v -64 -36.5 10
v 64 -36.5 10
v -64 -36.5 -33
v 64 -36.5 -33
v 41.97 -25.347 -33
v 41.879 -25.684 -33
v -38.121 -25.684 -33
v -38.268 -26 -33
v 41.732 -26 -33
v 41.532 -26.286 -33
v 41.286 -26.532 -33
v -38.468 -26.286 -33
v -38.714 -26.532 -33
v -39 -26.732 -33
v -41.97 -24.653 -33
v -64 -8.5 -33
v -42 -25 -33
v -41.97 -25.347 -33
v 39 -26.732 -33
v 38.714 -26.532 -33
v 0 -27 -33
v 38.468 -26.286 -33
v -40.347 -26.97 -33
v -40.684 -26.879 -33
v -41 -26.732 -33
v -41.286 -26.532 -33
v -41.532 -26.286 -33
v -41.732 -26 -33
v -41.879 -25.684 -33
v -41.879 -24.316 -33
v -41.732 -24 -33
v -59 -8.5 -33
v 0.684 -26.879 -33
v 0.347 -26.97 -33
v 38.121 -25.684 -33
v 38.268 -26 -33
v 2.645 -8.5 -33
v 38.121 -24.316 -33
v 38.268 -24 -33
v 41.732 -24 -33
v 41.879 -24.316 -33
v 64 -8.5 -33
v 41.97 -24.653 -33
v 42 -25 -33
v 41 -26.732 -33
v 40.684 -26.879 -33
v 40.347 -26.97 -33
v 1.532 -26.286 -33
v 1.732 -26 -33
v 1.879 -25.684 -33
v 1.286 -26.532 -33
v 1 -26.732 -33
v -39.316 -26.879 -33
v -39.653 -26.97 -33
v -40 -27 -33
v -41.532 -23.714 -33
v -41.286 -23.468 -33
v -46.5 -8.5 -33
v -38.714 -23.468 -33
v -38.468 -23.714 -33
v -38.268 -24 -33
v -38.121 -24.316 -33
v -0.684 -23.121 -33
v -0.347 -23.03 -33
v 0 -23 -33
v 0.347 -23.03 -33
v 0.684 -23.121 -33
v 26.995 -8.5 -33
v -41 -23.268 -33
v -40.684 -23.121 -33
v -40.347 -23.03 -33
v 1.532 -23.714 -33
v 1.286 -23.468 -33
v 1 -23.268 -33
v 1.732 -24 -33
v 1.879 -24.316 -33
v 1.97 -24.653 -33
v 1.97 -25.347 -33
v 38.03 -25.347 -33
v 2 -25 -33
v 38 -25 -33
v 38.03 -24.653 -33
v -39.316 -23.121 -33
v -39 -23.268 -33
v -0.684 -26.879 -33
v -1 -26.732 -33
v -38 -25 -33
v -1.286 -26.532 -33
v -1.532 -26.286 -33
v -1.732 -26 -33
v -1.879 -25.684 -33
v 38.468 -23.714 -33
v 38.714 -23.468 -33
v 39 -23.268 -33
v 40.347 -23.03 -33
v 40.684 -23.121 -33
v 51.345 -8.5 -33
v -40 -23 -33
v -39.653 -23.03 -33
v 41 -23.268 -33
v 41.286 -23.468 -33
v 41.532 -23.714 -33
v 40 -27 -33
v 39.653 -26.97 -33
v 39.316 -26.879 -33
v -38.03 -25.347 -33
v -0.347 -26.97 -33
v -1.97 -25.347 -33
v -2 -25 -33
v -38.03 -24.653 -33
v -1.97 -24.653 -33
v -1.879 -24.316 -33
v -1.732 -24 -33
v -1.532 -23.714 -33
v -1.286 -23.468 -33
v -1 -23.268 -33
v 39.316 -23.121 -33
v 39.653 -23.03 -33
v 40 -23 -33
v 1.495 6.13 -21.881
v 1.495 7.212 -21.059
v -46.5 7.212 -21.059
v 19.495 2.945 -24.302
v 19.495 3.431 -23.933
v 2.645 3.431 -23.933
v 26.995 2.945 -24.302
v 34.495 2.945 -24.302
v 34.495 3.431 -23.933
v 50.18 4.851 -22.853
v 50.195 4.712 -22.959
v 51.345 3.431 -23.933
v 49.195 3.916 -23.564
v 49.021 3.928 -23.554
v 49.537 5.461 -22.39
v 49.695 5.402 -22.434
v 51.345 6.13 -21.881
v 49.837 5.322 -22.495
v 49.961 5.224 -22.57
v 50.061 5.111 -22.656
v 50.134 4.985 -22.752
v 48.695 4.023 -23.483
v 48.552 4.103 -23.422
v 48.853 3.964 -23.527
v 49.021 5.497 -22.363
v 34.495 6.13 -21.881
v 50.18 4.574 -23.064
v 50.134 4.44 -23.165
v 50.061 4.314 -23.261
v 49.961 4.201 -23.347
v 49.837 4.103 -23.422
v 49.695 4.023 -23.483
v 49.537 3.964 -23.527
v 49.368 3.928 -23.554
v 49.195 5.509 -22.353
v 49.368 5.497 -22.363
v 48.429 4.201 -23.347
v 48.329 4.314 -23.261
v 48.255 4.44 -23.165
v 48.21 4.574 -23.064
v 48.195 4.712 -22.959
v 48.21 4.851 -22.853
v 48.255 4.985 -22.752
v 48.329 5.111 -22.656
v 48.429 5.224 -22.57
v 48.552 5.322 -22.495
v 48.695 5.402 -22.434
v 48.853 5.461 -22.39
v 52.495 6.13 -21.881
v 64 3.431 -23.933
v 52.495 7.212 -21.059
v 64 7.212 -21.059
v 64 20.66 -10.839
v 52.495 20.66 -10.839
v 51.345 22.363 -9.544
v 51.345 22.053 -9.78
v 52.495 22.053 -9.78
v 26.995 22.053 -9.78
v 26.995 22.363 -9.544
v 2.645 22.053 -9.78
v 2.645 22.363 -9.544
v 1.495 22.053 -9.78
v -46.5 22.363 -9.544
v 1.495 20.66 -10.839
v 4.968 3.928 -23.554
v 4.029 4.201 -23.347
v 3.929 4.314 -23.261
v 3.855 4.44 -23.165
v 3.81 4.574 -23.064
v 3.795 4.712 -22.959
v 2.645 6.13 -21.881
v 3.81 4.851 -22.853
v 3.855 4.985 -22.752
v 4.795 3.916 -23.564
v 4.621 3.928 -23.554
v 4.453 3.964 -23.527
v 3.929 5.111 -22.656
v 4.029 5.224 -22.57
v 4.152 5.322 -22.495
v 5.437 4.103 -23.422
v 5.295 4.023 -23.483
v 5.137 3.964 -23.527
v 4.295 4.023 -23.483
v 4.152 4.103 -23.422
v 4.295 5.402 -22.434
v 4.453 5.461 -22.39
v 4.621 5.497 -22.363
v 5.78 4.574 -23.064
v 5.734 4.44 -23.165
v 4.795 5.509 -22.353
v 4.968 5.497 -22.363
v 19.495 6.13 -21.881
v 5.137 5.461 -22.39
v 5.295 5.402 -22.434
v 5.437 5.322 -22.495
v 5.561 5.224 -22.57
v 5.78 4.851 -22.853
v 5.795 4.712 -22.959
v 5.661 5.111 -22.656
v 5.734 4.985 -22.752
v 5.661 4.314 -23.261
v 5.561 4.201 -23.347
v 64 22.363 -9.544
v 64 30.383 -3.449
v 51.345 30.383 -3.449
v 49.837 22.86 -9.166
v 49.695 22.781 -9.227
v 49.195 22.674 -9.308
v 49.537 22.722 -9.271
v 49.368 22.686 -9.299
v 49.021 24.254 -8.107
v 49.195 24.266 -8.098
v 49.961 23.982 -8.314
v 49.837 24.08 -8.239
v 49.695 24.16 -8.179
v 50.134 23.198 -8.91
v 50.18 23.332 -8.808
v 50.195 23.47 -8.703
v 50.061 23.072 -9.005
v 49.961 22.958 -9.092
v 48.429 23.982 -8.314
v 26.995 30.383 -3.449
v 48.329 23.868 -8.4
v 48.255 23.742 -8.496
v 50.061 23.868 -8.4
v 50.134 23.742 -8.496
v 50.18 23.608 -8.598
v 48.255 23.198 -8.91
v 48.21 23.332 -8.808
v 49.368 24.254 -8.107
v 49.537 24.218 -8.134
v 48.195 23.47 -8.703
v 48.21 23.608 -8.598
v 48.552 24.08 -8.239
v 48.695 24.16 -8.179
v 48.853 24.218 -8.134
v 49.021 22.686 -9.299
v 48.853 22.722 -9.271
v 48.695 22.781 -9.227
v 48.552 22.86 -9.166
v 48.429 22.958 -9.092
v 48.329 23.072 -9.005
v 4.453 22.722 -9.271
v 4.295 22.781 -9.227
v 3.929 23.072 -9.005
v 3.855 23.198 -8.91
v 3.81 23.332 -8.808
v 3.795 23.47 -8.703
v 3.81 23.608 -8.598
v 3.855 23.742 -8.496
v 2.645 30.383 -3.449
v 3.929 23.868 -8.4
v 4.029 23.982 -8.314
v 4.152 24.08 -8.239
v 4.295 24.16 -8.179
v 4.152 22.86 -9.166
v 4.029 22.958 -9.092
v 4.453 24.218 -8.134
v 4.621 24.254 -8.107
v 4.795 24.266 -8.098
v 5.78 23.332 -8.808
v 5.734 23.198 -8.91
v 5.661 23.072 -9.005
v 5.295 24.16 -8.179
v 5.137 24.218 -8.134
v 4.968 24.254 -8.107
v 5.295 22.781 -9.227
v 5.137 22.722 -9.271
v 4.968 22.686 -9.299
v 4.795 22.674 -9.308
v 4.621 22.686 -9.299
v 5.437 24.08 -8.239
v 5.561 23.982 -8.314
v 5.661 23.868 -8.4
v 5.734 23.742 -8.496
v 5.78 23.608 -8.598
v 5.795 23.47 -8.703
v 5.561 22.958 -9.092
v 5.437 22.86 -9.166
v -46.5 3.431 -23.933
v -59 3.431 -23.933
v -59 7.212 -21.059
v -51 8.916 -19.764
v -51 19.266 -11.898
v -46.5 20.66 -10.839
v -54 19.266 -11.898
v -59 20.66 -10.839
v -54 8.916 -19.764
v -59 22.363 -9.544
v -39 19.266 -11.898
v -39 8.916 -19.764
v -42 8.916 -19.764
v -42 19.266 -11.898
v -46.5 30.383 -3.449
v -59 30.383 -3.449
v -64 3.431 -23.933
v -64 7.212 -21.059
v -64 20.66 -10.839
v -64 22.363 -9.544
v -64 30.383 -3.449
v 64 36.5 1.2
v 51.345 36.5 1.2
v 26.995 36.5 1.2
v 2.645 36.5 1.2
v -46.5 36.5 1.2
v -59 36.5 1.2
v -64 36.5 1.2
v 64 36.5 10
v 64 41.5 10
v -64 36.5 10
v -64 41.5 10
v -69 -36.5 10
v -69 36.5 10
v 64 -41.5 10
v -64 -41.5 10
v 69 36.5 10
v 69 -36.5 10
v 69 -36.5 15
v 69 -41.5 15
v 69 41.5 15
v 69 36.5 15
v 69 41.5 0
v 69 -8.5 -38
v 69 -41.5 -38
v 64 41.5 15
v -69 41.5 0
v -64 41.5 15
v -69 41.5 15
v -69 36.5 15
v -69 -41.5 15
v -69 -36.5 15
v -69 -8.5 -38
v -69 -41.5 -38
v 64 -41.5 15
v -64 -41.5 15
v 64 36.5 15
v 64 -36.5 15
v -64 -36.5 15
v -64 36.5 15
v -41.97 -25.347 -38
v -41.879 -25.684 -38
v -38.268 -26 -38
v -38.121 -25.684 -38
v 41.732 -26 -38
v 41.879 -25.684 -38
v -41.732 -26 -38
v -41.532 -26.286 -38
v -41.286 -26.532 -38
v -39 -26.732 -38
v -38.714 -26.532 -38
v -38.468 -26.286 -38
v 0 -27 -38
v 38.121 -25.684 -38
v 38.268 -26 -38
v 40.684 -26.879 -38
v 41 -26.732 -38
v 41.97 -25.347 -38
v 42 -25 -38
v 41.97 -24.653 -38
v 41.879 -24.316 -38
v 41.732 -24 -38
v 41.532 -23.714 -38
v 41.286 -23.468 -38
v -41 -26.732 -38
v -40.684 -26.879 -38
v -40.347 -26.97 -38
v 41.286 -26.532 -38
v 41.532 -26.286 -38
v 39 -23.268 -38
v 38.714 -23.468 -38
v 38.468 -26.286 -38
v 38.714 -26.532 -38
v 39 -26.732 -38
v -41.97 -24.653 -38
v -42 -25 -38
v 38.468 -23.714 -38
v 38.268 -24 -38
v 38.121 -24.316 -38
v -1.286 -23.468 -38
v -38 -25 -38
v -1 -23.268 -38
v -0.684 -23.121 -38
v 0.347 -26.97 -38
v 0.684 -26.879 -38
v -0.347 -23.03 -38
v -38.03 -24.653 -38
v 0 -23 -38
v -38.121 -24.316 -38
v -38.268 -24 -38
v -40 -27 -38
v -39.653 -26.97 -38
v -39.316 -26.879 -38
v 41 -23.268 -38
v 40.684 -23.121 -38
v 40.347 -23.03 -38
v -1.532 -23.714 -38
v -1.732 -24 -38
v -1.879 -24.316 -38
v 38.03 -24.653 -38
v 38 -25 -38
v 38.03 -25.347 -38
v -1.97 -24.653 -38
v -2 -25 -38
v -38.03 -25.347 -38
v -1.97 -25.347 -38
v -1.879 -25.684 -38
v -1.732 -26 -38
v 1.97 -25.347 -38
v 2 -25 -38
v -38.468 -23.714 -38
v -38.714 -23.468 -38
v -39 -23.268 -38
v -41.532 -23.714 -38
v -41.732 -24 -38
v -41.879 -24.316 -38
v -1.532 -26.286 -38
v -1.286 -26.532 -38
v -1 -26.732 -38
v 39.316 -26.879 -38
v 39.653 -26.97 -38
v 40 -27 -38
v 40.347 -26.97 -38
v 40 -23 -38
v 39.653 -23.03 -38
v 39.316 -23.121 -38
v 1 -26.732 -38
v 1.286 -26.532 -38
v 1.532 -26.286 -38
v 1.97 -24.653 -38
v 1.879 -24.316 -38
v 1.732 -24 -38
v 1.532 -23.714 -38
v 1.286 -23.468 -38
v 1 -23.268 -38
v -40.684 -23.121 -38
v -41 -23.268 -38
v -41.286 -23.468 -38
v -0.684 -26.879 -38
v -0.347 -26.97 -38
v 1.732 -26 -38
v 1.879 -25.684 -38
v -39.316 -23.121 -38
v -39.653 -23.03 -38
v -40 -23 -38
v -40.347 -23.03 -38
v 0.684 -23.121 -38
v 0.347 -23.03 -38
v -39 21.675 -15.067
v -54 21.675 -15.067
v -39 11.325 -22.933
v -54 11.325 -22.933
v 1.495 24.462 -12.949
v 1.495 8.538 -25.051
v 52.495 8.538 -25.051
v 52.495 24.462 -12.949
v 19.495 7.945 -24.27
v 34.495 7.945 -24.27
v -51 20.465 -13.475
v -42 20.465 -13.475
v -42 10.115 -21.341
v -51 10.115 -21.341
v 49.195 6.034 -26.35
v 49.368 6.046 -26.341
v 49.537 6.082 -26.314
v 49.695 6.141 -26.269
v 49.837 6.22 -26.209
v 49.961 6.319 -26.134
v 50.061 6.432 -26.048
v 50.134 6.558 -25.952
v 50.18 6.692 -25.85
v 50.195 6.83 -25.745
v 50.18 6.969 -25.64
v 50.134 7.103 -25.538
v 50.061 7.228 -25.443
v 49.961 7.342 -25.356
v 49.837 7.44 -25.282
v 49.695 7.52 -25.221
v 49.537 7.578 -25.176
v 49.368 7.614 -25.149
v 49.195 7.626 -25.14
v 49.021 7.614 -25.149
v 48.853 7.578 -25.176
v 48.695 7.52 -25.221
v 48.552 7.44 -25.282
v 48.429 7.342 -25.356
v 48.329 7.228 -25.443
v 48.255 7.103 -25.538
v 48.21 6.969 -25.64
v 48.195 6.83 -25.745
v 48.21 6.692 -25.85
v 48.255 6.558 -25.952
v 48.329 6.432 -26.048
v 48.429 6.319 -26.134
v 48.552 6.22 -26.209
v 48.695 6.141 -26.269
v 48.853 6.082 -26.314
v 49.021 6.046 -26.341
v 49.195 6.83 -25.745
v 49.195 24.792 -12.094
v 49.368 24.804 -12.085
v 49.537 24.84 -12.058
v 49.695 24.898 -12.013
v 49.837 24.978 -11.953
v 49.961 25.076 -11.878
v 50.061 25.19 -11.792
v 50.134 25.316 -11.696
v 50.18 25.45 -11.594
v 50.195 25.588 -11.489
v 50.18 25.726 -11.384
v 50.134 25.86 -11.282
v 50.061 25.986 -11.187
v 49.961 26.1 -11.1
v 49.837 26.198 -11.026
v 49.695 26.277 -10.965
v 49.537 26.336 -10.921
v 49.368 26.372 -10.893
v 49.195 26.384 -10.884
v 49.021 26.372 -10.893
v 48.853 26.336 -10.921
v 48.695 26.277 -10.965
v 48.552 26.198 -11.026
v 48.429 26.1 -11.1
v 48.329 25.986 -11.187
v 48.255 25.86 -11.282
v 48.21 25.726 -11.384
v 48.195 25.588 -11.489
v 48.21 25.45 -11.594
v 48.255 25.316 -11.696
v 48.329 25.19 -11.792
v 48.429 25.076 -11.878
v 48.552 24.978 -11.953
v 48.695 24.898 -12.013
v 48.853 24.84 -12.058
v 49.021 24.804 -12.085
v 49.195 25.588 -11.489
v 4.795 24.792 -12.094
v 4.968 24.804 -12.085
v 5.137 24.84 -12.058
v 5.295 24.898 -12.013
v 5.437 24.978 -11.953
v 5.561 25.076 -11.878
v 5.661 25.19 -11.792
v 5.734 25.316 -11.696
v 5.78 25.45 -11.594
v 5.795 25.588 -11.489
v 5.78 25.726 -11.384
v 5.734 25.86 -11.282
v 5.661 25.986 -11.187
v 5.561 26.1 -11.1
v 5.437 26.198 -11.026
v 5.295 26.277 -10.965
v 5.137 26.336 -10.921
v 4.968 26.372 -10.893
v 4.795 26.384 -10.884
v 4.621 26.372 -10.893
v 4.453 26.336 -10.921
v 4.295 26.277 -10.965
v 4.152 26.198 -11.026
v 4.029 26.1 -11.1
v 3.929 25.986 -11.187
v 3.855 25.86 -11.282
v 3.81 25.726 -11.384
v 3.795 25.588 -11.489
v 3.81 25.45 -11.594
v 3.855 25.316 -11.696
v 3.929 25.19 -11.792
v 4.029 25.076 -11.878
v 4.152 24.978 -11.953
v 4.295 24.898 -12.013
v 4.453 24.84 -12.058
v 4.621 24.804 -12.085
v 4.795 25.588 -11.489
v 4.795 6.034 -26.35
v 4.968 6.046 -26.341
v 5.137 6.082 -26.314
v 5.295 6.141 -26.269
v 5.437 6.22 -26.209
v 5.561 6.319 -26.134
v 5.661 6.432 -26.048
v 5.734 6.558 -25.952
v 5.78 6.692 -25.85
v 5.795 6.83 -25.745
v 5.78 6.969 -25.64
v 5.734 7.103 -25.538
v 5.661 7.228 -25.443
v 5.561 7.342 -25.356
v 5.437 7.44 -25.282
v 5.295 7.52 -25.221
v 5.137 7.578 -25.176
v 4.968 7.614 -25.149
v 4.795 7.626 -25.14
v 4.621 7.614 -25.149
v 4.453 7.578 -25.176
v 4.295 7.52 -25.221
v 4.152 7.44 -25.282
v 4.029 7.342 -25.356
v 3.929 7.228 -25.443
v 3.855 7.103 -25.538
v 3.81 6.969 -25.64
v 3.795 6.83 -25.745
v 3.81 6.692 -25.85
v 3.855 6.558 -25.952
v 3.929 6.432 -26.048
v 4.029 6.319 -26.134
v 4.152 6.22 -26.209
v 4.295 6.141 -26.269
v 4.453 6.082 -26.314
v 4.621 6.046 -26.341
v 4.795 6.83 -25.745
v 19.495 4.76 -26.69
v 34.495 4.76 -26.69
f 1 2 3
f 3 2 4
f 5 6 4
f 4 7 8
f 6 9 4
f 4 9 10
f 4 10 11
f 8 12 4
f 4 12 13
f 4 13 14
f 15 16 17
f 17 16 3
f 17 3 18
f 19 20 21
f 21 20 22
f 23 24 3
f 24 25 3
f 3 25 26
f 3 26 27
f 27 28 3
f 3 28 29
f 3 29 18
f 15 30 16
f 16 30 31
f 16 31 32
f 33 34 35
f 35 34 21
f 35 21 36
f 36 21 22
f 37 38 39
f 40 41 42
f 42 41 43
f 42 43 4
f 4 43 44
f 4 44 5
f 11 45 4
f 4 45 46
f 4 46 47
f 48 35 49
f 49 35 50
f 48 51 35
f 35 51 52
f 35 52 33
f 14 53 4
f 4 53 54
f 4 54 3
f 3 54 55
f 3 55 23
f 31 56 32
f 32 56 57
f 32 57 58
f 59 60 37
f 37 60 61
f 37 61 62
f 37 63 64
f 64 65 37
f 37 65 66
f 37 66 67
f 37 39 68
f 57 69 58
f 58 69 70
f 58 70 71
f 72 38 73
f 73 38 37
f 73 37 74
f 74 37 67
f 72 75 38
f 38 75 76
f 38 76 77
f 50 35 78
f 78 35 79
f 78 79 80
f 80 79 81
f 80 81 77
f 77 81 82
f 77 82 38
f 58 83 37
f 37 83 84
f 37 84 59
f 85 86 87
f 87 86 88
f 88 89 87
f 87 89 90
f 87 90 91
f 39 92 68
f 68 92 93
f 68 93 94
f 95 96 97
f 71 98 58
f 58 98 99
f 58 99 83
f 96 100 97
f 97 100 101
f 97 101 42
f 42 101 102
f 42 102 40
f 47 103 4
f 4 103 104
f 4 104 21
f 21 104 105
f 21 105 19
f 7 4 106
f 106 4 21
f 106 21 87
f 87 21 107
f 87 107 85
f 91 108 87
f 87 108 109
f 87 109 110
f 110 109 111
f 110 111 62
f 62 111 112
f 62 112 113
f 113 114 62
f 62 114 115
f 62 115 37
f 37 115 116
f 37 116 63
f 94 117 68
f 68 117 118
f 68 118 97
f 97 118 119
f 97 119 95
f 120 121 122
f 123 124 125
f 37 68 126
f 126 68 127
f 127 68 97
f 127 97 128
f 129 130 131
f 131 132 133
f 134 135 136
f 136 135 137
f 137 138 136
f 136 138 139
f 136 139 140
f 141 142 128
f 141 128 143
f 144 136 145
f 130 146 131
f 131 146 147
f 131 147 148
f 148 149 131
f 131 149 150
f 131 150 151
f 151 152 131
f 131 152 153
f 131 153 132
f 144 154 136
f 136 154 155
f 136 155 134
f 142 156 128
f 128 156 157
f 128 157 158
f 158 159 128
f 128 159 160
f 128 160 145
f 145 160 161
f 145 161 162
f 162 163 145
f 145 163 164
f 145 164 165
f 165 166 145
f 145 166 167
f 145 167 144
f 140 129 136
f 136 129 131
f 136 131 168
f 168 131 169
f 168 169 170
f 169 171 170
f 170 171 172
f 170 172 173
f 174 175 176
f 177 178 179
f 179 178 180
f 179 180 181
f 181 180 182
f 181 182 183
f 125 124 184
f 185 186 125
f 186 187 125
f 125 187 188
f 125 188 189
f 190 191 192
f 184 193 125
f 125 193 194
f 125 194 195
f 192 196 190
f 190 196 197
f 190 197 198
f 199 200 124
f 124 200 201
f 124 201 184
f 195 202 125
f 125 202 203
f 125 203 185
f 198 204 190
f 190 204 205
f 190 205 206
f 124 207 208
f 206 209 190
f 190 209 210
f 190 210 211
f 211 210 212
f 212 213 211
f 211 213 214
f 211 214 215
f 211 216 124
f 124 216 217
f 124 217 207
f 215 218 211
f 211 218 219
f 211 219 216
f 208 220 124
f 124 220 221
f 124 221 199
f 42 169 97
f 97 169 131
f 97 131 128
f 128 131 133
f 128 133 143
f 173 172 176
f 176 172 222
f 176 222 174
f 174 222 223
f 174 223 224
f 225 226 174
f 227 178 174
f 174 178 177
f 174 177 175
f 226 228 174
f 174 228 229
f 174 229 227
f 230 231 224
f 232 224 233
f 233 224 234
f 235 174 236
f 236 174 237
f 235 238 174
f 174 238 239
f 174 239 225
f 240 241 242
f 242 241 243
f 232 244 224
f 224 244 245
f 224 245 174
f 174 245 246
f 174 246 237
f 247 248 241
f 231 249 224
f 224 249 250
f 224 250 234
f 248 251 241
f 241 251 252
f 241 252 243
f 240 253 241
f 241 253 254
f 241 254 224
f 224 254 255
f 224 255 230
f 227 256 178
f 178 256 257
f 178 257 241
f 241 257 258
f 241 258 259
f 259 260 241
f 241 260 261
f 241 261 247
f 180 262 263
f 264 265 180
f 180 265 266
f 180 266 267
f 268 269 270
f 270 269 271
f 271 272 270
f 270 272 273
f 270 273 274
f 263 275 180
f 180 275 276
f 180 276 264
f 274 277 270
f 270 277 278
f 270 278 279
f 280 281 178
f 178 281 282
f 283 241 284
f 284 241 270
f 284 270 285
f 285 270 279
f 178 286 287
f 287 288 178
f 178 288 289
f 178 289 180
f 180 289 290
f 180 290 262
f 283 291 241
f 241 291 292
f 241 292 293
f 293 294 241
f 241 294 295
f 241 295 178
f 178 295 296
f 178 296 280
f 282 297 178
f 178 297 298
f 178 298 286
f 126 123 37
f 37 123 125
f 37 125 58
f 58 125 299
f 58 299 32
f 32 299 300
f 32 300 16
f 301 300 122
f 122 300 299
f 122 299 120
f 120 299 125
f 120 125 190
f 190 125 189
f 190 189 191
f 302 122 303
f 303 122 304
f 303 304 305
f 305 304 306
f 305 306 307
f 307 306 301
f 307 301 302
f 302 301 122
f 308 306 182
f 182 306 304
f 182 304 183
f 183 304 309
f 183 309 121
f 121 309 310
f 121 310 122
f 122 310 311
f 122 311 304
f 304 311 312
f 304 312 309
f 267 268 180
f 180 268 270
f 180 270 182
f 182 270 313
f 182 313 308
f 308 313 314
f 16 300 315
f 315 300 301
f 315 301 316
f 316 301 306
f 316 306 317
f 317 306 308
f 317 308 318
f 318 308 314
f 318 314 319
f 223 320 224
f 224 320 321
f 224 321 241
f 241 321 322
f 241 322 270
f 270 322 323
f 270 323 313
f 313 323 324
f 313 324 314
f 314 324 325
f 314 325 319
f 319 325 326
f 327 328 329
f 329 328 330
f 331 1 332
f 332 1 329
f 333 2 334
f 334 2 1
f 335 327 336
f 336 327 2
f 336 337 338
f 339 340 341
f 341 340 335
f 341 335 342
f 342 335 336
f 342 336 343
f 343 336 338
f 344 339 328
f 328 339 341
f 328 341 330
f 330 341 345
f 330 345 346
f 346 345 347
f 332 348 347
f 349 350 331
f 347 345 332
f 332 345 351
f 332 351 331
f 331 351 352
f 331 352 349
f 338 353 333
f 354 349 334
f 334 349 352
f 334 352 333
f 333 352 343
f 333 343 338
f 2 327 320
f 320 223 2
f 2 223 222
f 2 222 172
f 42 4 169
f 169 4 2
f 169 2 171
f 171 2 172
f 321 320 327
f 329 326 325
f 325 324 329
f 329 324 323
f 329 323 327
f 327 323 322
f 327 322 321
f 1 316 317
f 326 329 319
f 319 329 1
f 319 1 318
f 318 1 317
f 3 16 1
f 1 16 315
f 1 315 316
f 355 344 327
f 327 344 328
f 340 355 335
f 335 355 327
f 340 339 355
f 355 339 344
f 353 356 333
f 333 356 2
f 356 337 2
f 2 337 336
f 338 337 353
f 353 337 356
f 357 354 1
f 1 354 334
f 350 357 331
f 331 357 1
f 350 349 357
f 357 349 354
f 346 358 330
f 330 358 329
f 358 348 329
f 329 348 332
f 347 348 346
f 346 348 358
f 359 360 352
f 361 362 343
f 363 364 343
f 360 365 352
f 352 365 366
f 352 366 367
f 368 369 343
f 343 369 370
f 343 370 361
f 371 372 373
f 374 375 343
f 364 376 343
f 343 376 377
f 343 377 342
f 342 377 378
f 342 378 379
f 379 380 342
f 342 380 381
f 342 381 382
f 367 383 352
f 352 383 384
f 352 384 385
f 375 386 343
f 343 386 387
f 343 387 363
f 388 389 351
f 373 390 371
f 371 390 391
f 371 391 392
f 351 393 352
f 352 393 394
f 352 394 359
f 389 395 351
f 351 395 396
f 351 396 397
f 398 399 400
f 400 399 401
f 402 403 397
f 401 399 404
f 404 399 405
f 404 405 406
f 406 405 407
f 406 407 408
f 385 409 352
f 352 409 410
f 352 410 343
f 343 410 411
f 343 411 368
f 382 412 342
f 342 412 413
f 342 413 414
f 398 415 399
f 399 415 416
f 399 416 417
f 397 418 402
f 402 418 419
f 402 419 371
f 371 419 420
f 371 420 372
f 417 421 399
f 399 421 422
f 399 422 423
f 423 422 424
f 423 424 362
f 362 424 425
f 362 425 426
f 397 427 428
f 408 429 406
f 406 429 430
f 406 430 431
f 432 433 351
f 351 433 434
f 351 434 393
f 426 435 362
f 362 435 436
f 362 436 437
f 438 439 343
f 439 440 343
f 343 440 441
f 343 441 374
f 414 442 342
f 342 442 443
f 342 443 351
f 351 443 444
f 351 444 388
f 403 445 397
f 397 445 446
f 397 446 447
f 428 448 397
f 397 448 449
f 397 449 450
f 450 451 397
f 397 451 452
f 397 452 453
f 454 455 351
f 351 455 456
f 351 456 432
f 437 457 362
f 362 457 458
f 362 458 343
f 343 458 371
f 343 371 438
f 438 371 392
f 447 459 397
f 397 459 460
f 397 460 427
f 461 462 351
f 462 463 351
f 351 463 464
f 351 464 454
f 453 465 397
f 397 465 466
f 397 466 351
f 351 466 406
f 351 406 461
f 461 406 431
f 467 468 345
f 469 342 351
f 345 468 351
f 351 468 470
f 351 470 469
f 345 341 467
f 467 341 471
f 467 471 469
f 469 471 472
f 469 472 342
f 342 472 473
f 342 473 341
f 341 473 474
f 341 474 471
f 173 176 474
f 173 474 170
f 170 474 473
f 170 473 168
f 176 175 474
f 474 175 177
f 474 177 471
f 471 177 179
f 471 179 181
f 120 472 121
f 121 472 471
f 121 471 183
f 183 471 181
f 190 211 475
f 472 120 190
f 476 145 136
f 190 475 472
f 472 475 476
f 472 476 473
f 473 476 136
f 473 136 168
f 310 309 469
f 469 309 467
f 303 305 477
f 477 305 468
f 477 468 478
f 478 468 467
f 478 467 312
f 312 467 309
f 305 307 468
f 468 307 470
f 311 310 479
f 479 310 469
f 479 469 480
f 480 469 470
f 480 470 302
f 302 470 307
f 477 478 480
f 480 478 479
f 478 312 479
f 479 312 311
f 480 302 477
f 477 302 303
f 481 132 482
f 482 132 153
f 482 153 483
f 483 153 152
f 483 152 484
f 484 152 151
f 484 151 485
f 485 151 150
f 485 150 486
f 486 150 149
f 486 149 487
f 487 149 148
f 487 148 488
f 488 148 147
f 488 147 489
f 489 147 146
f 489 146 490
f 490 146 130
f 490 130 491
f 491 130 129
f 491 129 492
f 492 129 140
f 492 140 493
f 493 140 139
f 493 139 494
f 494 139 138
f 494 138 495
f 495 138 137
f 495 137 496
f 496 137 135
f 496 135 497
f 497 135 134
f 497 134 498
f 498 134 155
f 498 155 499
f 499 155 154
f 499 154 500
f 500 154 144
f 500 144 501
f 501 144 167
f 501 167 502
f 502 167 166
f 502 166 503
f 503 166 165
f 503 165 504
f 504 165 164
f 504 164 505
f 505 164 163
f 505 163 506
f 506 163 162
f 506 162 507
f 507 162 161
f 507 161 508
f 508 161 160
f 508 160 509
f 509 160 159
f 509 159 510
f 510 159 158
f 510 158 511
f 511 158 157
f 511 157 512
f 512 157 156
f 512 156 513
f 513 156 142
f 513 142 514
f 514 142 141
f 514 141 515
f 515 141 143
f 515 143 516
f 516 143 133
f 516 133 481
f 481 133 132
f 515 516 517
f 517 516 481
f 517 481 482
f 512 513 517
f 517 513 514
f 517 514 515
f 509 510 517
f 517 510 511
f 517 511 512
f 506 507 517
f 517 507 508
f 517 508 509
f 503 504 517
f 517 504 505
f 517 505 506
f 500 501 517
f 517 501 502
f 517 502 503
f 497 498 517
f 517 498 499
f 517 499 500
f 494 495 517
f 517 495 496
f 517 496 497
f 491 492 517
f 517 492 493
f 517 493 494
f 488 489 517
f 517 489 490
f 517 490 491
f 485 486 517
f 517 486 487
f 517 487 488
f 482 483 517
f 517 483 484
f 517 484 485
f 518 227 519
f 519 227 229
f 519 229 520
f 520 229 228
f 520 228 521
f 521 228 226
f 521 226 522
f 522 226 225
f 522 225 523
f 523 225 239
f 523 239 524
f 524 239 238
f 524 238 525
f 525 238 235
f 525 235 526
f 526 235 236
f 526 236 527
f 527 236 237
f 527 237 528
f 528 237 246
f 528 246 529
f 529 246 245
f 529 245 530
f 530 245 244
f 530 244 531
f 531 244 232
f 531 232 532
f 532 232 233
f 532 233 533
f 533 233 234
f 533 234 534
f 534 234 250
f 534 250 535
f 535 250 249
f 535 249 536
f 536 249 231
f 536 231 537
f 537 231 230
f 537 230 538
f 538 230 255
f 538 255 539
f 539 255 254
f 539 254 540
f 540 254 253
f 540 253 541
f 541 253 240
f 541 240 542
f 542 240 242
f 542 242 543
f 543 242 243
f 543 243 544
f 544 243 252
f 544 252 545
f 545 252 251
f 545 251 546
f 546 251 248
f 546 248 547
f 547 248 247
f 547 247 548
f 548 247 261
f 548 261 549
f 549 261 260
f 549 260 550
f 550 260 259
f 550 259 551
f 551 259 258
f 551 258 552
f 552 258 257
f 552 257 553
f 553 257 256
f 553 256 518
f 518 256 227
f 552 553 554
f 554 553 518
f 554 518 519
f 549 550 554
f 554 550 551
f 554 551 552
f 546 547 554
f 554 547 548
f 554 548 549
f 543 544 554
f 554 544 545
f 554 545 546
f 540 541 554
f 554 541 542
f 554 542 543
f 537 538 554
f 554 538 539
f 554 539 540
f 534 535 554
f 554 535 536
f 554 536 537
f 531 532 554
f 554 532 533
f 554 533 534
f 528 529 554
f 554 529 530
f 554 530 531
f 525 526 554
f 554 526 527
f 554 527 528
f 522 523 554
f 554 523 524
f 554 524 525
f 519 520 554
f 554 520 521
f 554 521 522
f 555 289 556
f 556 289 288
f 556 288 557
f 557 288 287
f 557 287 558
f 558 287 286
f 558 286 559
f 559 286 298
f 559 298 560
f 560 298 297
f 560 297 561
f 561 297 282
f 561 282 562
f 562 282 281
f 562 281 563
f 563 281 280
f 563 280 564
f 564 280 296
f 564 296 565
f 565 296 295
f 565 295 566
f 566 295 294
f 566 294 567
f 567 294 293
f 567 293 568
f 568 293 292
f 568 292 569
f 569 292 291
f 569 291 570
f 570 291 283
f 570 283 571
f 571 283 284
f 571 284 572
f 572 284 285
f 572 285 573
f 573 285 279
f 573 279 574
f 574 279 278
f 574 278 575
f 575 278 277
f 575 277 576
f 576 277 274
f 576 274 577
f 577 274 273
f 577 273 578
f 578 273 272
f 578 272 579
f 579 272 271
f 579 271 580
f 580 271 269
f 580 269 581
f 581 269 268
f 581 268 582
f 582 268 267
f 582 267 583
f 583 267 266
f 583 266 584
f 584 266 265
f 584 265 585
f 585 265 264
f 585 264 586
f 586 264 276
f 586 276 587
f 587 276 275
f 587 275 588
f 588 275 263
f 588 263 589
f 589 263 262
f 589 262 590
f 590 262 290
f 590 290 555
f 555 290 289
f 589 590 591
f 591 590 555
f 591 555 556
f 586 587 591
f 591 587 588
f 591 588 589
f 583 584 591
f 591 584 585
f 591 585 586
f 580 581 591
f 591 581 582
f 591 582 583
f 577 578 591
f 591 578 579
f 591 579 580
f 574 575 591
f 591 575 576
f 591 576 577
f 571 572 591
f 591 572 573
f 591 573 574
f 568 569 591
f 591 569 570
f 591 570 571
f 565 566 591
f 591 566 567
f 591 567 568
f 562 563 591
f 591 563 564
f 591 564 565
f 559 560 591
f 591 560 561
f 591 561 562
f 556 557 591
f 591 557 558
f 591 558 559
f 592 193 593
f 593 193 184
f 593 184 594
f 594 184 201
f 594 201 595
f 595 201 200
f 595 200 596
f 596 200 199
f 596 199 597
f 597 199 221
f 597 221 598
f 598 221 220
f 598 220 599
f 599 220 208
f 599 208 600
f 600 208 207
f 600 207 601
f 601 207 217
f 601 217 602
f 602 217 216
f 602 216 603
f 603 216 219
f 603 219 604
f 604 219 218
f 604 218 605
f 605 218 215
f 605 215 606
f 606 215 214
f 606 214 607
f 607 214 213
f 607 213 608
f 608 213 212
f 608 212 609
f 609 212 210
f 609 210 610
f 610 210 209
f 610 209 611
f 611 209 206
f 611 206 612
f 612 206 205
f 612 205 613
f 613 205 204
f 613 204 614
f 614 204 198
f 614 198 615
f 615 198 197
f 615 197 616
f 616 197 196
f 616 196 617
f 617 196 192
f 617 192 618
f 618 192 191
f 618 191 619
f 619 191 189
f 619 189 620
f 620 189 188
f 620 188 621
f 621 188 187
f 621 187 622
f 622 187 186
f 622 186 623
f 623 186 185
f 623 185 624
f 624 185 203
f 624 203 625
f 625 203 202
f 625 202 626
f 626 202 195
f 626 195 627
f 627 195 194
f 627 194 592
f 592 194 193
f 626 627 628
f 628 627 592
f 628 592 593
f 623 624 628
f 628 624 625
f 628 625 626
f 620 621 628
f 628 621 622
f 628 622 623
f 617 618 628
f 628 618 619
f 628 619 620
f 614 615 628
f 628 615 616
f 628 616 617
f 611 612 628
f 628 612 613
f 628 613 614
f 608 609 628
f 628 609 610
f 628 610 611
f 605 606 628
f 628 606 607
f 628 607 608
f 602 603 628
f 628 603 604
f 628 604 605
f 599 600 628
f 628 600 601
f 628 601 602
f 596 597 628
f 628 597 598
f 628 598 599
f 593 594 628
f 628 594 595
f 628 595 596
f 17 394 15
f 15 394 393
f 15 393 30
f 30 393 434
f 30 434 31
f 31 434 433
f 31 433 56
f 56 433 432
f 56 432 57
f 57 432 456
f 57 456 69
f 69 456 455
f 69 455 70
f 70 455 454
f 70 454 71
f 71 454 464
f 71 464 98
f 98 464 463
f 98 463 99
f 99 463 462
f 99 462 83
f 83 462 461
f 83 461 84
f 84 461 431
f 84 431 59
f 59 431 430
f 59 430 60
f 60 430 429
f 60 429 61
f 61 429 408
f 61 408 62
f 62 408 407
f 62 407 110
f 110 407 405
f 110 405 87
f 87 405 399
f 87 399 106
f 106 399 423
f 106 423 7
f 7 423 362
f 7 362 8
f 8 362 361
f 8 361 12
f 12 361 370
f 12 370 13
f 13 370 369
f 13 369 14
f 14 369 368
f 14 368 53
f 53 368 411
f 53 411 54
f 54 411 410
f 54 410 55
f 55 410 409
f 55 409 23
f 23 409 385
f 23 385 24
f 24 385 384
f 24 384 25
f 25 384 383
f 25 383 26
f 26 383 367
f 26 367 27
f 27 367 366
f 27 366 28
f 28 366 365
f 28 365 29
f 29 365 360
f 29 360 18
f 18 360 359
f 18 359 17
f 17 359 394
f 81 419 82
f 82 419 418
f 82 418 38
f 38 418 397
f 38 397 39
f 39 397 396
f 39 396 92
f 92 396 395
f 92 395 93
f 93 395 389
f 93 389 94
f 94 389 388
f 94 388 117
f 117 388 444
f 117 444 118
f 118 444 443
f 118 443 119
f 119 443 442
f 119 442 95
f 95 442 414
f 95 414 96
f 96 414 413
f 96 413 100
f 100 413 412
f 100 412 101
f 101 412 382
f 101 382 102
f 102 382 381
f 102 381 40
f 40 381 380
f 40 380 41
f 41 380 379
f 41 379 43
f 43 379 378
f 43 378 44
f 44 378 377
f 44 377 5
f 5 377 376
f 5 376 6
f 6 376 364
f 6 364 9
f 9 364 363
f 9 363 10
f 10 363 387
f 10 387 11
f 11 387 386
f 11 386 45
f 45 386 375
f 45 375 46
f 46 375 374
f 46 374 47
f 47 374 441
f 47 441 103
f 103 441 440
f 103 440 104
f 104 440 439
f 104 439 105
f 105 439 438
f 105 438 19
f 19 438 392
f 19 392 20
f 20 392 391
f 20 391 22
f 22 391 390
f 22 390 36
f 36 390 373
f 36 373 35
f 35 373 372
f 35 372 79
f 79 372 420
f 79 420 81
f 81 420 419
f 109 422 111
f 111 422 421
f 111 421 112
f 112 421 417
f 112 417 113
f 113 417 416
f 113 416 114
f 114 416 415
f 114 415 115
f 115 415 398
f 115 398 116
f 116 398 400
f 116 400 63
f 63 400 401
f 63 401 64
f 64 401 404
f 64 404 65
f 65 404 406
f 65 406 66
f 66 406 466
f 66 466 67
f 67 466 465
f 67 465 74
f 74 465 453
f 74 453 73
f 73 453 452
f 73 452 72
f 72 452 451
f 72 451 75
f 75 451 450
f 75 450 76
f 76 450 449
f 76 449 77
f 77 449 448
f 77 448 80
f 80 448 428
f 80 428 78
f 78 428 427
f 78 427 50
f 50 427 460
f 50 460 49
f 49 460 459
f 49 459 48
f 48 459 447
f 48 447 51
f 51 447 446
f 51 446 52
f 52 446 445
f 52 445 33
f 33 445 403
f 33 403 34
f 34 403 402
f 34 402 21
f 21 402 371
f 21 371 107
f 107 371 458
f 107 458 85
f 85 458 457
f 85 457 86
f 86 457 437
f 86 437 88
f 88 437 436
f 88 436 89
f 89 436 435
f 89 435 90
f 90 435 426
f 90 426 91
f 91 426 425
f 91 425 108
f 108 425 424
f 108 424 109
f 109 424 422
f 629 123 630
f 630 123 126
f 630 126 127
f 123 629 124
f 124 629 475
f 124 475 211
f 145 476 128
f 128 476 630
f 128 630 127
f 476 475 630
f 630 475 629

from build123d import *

# Parameters (mm, degrees)
SKETCH1_W           = 138
SKETCH1_H           = 83
SKETCH1_W_2         = 128
SKETCH1_H_2         = 73
BOSS_EXTRUDE1_DEPTH = 10
SKETCH2_W           = 5
SKETCH2_H           = 5
BOSS_EXTRUDE2_DEPTH = 5
SKETCH3_W           = 138
SKETCH3_H           = 5
BOSS_EXTRUDE3_DEPTH = 38
SKETCH6_W           = 138
SKETCH6_H           = 28
BOSS_EXTRUDE4_DEPTH = 5
BOSS_EXTRUDE5_DEPTH = 138
BOSS_EXTRUDE6_DEPTH = 5
BOSS_EXTRUDE7_DEPTH = 5
CUT_EXTRUDE1_REACH  = 97.915
SKETCH14_W          = 51
SKETCH14_H          = 20
SKETCH16_W          = 15
SKETCH16_H          = 13
CUT_EXTRUDE2_DEPTH  = 2
CUT_EXTRUDE3_REACH  = 96.631
SKETCH17_W          = 3
SKETCH17_H          = 13
SKETCH18_R          = 1
CUT_EXTRUDE4_DEPTH  = 3.5
CUT_EXTRUDE5_REACH  = 98.396
SKETCH19_R          = 2
SKETCH20_W          = 15
SKETCH20_H          = 4
CUT_EXTRUDE6_DEPTH  = 3


with BuildPart() as part:
    # Sketch1 → Boss-Extrude1 (new body)
    with BuildSketch(Plane.XY):
        Rectangle(SKETCH1_W, SKETCH1_H)
        Rectangle(SKETCH1_W_2, SKETCH1_H_2, mode=Mode.SUBTRACT)
    extrude(amount=BOSS_EXTRUDE1_DEPTH)

    # Sketch2 → Boss-Extrude2 (add)
    with BuildSketch(Plane.XY.offset(10)):
        with Locations((66.5, 39)):
            Rectangle(SKETCH2_W, SKETCH2_H)
        with Locations((66.5, -39)):
            Rectangle(SKETCH2_W, SKETCH2_H)
        with Locations((-66.5, -39)):
            Rectangle(SKETCH2_W, SKETCH2_H)
        with Locations((-66.5, 39)):
            Rectangle(SKETCH2_W, SKETCH2_H)
    extrude(amount=BOSS_EXTRUDE2_DEPTH)

    # Sketch3 → Boss-Extrude3 (add)
    with BuildSketch(Plane(origin=(0, 0, 0), x_dir=(-1, 0, 0), z_dir=(0, 0, -1))):
        with Locations((0, -39)):
            Rectangle(SKETCH3_W, SKETCH3_H)
    extrude(amount=BOSS_EXTRUDE3_DEPTH)

    # Sketch6 → Boss-Extrude4 (add)
    with BuildSketch(Plane.XY.offset(-38)):
        with Locations((0, -22.5)):
            Rectangle(SKETCH6_W, SKETCH6_H)
    extrude(amount=BOSS_EXTRUDE4_DEPTH)

    # Sketch8 → Boss-Extrude5 (add, through all)
    with BuildSketch(Plane(origin=(69, 0, 0), x_dir=(0, 0, -1), z_dir=(1, 0, 0))):
        Polygon((0, 41.5), (38, -8.5), (33, -8.5), (-5, 41.5), align=None)
    extrude(amount=-BOSS_EXTRUDE5_DEPTH)

    # Sketch9 → Boss-Extrude6 (add)
    with BuildSketch(Plane(origin=(69, 0, 0), x_dir=(0, 0, -1), z_dir=(1, 0, 0))):
        Polygon((0, 34.921052632), (33, -8.5), (33, -36.5), (0, -36.5), align=None)
    extrude(amount=-BOSS_EXTRUDE6_DEPTH)

    # Sketch10 → Boss-Extrude7 (add)
    with BuildSketch(Plane.ZY.offset(69)):
        Polygon((0, 34.921052632), (0, -36.5), (-33, -36.5), (-33, -8.5), align=None)
    extrude(amount=-BOSS_EXTRUDE7_DEPTH)

    # Sketch14 → Cut-Extrude1 (cut, up to next)
    with BuildSketch(Plane(origin=(0, 15.194219067, -19.992393509), x_dir=(-1, 0, 0), z_dir=(0, 0.6050832675335605, -0.7961621941231005)), mode=Mode.PRIVATE) as cut_extrude1_sk1:
        with Locations((-26.994700685, 1.64009412)):
            Rectangle(SKETCH14_W, SKETCH14_H)
    cut_extrude1_tool1 = extrude(cut_extrude1_sk1.sketch, amount=-CUT_EXTRUDE1_REACH, mode=Mode.PRIVATE) & part.part
    add(cut_extrude1_tool1.solids().sort_by_distance((26.994701, 16.5, -19))[0], mode=Mode.SUBTRACT)

    # Sketch16 → Cut-Extrude2 (cut)
    with BuildSketch(Plane(origin=(0, 15.194219067, -19.992393509), x_dir=(-1, 0, 0), z_dir=(0, 0.6050832675335606, -0.7961621941231006))):
        with Locations((46.5, 1.64009412)):
            Rectangle(SKETCH16_W, SKETCH16_H)
    extrude(amount=-CUT_EXTRUDE2_DEPTH, mode=Mode.SUBTRACT)

    # Sketch17 → Cut-Extrude3 (cut, up to next)
    with BuildSketch(Plane(origin=(0, 13.984052532, -18.400069121), x_dir=(-1, 0, 0), z_dir=(0, 0.6050832675335606, -0.7961621941231006)), mode=Mode.PRIVATE) as cut_extrude3_sk1:
        with Locations((40.5, 1.64009412)):
            Rectangle(SKETCH17_W, SKETCH17_H)
    cut_extrude3_tool1 = extrude(cut_extrude3_sk1.sketch, amount=-CUT_EXTRUDE3_REACH, mode=Mode.PRIVATE) & part.part
    # Sketch17 → Cut-Extrude3 (cut, up to next)
    with BuildSketch(Plane(origin=(0, 13.984052532, -18.400069121), x_dir=(-1, 0, 0), z_dir=(0, 0.6050832675335606, -0.7961621941231006)), mode=Mode.PRIVATE) as cut_extrude3_sk2:
        with Locations((52.5, 1.64009412)):
            Rectangle(SKETCH17_W, SKETCH17_H)
    cut_extrude3_tool2 = extrude(cut_extrude3_sk2.sketch, amount=-CUT_EXTRUDE3_REACH, mode=Mode.PRIVATE) & part.part
    add(cut_extrude3_tool1.solids().sort_by_distance((-40.5, 15.289833, -17.407676))[0], mode=Mode.SUBTRACT)
    add(cut_extrude3_tool2.solids().sort_by_distance((-52.5, 15.289833, -17.407676))[0], mode=Mode.SUBTRACT)

    # Sketch18 → Cut-Extrude4 (cut)
    with BuildSketch(Plane(origin=(0, 12.785496957, -16.823022312), x_dir=(1, 0, 0), z_dir=(0, -0.6050832675335605, 0.7961621941231007))):
        with Locations(Location((49.194700685, -10.13990588, 0), (0, 0, 270))):
            Circle(SKETCH18_R)
        with Locations(Location((4.794700685, -10.13990588, 0), (0, 0, 270))):
            Circle(SKETCH18_R)
        with Locations(Location((4.794700685, 13.42009412, 0), (0, 0, 270))):
            Circle(SKETCH18_R)
        with Locations(Location((49.194700685, 13.42009412, 0), (0, 0, 270))):
            Circle(SKETCH18_R)
    extrude(amount=-CUT_EXTRUDE4_DEPTH, mode=Mode.SUBTRACT)

    # Sketch19 → Cut-Extrude5 (cut, up to next)
    with BuildSketch(Plane(origin=(0, 0, -38), x_dir=(-1, 0, 0), z_dir=(0, 0, -1)), mode=Mode.PRIVATE) as cut_extrude5_sk1:
        with Locations((40, -25)):
            Circle(SKETCH19_R)
    cut_extrude5_tool1 = extrude(cut_extrude5_sk1.sketch, amount=-CUT_EXTRUDE5_REACH, mode=Mode.PRIVATE) & part.part
    # Sketch19 → Cut-Extrude5 (cut, up to next)
    with BuildSketch(Plane(origin=(0, 0, -38), x_dir=(-1, 0, 0), z_dir=(0, 0, -1)), mode=Mode.PRIVATE) as cut_extrude5_sk2:
        with Locations((0, -25)):
            Circle(SKETCH19_R)
    cut_extrude5_tool2 = extrude(cut_extrude5_sk2.sketch, amount=-CUT_EXTRUDE5_REACH, mode=Mode.PRIVATE) & part.part
    # Sketch19 → Cut-Extrude5 (cut, up to next)
    with BuildSketch(Plane(origin=(0, 0, -38), x_dir=(-1, 0, 0), z_dir=(0, 0, -1)), mode=Mode.PRIVATE) as cut_extrude5_sk3:
        with Locations((-40, -25)):
            Circle(SKETCH19_R)
    cut_extrude5_tool3 = extrude(cut_extrude5_sk3.sketch, amount=-CUT_EXTRUDE5_REACH, mode=Mode.PRIVATE) & part.part
    add(cut_extrude5_tool1.solids().sort_by_distance((-40, -25, -38))[0], mode=Mode.SUBTRACT)
    add(cut_extrude5_tool2.solids().sort_by_distance((0, -25, -38))[0], mode=Mode.SUBTRACT)
    add(cut_extrude5_tool3.solids().sort_by_distance((40, -25, -38))[0], mode=Mode.SUBTRACT)

    # Sketch20 → Cut-Extrude6 (cut)
    with BuildSketch(Plane(origin=(0, 12.785496957, -16.823022312), x_dir=(1, 0, 0), z_dir=(0, -0.6050832675335605, 0.7961621941231007))):
        with Locations((26.994700685, -10.35990588)):
            Rectangle(SKETCH20_W, SKETCH20_H)
    extrude(amount=-CUT_EXTRUDE6_DEPTH, mode=Mode.SUBTRACT)


solid = part.part
